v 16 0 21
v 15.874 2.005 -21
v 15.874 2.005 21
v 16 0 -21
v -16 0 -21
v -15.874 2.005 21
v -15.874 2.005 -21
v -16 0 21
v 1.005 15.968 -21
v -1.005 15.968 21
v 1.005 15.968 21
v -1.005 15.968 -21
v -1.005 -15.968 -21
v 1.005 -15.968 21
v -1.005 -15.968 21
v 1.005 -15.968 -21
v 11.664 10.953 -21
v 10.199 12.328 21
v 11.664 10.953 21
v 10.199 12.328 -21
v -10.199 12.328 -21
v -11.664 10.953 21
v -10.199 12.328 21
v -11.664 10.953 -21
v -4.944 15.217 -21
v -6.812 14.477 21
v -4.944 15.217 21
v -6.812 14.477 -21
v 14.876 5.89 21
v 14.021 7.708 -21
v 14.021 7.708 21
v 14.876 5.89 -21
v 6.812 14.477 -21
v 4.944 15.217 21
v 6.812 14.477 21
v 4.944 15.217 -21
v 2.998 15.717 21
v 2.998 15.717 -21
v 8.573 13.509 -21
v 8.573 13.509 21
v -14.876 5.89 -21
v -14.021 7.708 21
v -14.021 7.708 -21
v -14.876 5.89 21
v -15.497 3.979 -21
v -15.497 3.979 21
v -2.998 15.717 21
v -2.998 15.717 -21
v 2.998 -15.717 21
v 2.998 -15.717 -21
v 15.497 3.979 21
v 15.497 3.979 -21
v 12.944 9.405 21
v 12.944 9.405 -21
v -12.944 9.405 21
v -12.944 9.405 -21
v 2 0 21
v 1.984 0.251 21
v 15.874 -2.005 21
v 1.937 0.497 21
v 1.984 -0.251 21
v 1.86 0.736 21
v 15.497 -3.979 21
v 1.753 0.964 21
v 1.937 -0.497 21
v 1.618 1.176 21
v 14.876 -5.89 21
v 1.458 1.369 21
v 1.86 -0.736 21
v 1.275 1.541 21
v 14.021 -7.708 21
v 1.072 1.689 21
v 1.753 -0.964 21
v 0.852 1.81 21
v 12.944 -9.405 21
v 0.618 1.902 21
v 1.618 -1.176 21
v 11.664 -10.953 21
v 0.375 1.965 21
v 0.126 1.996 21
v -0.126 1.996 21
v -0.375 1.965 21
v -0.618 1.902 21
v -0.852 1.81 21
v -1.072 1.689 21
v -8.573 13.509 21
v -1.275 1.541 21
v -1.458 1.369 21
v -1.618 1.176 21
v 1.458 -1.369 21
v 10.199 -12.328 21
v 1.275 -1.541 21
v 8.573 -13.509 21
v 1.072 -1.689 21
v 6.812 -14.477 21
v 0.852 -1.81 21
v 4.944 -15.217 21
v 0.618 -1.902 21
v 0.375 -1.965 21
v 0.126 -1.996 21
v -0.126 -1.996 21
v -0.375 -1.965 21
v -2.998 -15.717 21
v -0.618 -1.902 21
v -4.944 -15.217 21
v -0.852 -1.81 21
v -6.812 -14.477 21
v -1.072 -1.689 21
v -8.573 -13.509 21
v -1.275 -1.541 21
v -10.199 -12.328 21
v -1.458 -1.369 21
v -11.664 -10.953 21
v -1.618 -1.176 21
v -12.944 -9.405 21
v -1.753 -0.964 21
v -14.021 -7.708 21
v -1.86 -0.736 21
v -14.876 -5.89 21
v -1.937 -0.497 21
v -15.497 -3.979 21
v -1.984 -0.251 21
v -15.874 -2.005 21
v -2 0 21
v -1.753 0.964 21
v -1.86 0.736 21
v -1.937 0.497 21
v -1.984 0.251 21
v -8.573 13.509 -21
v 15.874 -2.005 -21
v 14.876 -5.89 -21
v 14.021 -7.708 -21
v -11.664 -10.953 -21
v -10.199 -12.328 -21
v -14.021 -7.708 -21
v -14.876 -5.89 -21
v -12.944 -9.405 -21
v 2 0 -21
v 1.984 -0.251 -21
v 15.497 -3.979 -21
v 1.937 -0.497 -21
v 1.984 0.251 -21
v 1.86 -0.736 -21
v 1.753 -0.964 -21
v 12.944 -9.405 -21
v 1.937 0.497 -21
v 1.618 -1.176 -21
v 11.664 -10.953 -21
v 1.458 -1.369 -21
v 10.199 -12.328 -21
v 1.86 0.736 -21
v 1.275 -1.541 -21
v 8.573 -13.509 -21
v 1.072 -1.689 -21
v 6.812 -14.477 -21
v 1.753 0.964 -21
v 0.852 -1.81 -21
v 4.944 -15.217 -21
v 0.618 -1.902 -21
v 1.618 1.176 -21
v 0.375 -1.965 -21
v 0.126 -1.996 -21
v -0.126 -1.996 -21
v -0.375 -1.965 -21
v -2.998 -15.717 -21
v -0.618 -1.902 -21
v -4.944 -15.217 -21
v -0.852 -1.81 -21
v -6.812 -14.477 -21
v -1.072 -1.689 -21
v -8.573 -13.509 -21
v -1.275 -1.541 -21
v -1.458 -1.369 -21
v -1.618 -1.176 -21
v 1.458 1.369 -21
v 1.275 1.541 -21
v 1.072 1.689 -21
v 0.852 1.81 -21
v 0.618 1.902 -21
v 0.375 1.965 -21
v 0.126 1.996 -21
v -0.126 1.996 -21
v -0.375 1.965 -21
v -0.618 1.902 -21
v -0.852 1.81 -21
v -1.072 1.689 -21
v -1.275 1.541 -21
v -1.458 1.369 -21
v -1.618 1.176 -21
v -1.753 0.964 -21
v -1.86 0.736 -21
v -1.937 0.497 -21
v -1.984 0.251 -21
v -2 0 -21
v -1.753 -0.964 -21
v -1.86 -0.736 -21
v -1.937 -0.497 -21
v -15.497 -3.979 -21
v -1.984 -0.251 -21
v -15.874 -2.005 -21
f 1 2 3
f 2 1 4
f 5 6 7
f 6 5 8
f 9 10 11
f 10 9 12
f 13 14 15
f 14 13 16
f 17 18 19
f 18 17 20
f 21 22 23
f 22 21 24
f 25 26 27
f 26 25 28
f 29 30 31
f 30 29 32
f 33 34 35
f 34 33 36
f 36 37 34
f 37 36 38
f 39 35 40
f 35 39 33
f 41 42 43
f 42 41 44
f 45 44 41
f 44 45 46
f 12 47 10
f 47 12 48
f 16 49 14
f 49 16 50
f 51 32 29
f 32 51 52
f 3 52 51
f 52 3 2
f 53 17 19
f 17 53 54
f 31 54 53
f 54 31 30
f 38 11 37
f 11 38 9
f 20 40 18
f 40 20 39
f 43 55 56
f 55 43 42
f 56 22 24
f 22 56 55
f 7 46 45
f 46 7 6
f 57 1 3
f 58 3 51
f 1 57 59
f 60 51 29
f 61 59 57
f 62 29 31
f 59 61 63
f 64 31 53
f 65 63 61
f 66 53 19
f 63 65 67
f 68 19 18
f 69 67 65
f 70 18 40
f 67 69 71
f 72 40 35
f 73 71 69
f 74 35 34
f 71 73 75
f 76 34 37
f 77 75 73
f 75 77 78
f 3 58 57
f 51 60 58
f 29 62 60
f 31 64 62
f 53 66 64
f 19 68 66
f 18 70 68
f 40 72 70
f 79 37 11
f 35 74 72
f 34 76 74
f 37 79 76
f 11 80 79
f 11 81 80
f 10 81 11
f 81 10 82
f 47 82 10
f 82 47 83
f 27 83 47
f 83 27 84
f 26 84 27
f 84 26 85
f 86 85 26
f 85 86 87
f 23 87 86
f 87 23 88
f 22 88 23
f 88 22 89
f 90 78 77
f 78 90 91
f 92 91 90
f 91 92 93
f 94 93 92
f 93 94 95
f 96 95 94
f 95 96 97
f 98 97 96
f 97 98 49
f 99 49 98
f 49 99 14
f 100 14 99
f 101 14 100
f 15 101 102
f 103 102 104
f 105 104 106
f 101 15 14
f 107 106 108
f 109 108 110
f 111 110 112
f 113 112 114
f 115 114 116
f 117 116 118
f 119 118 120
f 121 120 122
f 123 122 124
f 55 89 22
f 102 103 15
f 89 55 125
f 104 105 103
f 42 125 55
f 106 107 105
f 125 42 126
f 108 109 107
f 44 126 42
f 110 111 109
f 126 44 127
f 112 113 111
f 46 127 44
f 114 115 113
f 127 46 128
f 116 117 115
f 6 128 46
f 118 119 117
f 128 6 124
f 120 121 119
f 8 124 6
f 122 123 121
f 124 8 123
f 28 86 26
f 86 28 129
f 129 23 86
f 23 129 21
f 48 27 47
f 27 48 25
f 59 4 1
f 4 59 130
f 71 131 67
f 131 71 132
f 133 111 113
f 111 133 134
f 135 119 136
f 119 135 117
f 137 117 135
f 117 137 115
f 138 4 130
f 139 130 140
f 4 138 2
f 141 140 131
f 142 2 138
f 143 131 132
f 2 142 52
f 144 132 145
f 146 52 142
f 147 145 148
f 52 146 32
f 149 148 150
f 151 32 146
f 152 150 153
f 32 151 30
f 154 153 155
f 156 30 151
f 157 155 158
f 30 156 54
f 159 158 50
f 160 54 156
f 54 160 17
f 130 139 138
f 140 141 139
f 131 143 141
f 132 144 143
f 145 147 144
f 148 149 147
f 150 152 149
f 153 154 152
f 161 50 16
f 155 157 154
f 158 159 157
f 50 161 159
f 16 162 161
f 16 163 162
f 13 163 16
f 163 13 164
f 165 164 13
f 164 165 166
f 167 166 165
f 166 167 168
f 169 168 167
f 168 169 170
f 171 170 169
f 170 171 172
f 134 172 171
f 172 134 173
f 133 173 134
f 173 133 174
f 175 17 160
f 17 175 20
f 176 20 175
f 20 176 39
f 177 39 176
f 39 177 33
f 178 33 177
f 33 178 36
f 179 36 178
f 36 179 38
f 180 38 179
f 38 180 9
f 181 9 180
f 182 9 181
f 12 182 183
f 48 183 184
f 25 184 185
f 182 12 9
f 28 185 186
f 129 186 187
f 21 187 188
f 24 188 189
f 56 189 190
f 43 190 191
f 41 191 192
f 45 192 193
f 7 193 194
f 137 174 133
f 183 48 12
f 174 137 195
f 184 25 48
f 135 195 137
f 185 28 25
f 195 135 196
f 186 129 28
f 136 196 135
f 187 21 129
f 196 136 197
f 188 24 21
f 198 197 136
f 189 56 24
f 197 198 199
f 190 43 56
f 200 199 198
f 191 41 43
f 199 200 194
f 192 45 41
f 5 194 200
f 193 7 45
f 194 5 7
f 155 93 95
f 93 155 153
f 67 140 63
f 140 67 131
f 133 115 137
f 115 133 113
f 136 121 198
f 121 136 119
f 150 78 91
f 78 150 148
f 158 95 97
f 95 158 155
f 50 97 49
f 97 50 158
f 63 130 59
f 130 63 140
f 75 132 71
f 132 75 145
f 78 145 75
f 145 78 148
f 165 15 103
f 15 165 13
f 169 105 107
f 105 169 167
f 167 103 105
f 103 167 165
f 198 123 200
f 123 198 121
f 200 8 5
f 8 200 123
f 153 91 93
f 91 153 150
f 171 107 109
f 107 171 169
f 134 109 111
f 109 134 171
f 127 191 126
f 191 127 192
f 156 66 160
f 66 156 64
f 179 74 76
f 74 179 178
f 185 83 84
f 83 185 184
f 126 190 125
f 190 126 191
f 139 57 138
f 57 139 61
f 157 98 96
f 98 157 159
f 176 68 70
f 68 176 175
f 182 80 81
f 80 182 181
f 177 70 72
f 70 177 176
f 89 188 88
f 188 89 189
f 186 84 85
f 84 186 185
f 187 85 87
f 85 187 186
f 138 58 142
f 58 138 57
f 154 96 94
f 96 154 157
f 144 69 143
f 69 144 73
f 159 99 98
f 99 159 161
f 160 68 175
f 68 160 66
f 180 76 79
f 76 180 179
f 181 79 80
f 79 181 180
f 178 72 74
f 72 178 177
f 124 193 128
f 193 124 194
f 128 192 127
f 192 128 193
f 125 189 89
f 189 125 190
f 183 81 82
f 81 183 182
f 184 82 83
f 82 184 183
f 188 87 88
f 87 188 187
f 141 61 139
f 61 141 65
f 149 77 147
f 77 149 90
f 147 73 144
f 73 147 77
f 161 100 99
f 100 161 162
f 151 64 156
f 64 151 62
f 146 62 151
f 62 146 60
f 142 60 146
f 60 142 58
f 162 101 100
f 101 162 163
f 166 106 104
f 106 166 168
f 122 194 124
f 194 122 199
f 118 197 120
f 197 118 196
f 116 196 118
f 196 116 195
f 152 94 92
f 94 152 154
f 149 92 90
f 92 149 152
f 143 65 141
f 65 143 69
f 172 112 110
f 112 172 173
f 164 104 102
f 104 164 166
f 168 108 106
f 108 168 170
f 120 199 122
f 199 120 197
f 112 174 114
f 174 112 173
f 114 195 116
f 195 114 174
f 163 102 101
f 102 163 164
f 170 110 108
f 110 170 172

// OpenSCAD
$fn = 50;


difference() {
	union() {
		translate(v = [0, 0, -21.0000000000]) {
			cylinder(h = 42, r = 16.0000000000);
		}
	}
	union() {
		translate(v = [0, 0, -100.0000000000]) {
			cylinder(h = 200, r = 2);
		}
	}
}
